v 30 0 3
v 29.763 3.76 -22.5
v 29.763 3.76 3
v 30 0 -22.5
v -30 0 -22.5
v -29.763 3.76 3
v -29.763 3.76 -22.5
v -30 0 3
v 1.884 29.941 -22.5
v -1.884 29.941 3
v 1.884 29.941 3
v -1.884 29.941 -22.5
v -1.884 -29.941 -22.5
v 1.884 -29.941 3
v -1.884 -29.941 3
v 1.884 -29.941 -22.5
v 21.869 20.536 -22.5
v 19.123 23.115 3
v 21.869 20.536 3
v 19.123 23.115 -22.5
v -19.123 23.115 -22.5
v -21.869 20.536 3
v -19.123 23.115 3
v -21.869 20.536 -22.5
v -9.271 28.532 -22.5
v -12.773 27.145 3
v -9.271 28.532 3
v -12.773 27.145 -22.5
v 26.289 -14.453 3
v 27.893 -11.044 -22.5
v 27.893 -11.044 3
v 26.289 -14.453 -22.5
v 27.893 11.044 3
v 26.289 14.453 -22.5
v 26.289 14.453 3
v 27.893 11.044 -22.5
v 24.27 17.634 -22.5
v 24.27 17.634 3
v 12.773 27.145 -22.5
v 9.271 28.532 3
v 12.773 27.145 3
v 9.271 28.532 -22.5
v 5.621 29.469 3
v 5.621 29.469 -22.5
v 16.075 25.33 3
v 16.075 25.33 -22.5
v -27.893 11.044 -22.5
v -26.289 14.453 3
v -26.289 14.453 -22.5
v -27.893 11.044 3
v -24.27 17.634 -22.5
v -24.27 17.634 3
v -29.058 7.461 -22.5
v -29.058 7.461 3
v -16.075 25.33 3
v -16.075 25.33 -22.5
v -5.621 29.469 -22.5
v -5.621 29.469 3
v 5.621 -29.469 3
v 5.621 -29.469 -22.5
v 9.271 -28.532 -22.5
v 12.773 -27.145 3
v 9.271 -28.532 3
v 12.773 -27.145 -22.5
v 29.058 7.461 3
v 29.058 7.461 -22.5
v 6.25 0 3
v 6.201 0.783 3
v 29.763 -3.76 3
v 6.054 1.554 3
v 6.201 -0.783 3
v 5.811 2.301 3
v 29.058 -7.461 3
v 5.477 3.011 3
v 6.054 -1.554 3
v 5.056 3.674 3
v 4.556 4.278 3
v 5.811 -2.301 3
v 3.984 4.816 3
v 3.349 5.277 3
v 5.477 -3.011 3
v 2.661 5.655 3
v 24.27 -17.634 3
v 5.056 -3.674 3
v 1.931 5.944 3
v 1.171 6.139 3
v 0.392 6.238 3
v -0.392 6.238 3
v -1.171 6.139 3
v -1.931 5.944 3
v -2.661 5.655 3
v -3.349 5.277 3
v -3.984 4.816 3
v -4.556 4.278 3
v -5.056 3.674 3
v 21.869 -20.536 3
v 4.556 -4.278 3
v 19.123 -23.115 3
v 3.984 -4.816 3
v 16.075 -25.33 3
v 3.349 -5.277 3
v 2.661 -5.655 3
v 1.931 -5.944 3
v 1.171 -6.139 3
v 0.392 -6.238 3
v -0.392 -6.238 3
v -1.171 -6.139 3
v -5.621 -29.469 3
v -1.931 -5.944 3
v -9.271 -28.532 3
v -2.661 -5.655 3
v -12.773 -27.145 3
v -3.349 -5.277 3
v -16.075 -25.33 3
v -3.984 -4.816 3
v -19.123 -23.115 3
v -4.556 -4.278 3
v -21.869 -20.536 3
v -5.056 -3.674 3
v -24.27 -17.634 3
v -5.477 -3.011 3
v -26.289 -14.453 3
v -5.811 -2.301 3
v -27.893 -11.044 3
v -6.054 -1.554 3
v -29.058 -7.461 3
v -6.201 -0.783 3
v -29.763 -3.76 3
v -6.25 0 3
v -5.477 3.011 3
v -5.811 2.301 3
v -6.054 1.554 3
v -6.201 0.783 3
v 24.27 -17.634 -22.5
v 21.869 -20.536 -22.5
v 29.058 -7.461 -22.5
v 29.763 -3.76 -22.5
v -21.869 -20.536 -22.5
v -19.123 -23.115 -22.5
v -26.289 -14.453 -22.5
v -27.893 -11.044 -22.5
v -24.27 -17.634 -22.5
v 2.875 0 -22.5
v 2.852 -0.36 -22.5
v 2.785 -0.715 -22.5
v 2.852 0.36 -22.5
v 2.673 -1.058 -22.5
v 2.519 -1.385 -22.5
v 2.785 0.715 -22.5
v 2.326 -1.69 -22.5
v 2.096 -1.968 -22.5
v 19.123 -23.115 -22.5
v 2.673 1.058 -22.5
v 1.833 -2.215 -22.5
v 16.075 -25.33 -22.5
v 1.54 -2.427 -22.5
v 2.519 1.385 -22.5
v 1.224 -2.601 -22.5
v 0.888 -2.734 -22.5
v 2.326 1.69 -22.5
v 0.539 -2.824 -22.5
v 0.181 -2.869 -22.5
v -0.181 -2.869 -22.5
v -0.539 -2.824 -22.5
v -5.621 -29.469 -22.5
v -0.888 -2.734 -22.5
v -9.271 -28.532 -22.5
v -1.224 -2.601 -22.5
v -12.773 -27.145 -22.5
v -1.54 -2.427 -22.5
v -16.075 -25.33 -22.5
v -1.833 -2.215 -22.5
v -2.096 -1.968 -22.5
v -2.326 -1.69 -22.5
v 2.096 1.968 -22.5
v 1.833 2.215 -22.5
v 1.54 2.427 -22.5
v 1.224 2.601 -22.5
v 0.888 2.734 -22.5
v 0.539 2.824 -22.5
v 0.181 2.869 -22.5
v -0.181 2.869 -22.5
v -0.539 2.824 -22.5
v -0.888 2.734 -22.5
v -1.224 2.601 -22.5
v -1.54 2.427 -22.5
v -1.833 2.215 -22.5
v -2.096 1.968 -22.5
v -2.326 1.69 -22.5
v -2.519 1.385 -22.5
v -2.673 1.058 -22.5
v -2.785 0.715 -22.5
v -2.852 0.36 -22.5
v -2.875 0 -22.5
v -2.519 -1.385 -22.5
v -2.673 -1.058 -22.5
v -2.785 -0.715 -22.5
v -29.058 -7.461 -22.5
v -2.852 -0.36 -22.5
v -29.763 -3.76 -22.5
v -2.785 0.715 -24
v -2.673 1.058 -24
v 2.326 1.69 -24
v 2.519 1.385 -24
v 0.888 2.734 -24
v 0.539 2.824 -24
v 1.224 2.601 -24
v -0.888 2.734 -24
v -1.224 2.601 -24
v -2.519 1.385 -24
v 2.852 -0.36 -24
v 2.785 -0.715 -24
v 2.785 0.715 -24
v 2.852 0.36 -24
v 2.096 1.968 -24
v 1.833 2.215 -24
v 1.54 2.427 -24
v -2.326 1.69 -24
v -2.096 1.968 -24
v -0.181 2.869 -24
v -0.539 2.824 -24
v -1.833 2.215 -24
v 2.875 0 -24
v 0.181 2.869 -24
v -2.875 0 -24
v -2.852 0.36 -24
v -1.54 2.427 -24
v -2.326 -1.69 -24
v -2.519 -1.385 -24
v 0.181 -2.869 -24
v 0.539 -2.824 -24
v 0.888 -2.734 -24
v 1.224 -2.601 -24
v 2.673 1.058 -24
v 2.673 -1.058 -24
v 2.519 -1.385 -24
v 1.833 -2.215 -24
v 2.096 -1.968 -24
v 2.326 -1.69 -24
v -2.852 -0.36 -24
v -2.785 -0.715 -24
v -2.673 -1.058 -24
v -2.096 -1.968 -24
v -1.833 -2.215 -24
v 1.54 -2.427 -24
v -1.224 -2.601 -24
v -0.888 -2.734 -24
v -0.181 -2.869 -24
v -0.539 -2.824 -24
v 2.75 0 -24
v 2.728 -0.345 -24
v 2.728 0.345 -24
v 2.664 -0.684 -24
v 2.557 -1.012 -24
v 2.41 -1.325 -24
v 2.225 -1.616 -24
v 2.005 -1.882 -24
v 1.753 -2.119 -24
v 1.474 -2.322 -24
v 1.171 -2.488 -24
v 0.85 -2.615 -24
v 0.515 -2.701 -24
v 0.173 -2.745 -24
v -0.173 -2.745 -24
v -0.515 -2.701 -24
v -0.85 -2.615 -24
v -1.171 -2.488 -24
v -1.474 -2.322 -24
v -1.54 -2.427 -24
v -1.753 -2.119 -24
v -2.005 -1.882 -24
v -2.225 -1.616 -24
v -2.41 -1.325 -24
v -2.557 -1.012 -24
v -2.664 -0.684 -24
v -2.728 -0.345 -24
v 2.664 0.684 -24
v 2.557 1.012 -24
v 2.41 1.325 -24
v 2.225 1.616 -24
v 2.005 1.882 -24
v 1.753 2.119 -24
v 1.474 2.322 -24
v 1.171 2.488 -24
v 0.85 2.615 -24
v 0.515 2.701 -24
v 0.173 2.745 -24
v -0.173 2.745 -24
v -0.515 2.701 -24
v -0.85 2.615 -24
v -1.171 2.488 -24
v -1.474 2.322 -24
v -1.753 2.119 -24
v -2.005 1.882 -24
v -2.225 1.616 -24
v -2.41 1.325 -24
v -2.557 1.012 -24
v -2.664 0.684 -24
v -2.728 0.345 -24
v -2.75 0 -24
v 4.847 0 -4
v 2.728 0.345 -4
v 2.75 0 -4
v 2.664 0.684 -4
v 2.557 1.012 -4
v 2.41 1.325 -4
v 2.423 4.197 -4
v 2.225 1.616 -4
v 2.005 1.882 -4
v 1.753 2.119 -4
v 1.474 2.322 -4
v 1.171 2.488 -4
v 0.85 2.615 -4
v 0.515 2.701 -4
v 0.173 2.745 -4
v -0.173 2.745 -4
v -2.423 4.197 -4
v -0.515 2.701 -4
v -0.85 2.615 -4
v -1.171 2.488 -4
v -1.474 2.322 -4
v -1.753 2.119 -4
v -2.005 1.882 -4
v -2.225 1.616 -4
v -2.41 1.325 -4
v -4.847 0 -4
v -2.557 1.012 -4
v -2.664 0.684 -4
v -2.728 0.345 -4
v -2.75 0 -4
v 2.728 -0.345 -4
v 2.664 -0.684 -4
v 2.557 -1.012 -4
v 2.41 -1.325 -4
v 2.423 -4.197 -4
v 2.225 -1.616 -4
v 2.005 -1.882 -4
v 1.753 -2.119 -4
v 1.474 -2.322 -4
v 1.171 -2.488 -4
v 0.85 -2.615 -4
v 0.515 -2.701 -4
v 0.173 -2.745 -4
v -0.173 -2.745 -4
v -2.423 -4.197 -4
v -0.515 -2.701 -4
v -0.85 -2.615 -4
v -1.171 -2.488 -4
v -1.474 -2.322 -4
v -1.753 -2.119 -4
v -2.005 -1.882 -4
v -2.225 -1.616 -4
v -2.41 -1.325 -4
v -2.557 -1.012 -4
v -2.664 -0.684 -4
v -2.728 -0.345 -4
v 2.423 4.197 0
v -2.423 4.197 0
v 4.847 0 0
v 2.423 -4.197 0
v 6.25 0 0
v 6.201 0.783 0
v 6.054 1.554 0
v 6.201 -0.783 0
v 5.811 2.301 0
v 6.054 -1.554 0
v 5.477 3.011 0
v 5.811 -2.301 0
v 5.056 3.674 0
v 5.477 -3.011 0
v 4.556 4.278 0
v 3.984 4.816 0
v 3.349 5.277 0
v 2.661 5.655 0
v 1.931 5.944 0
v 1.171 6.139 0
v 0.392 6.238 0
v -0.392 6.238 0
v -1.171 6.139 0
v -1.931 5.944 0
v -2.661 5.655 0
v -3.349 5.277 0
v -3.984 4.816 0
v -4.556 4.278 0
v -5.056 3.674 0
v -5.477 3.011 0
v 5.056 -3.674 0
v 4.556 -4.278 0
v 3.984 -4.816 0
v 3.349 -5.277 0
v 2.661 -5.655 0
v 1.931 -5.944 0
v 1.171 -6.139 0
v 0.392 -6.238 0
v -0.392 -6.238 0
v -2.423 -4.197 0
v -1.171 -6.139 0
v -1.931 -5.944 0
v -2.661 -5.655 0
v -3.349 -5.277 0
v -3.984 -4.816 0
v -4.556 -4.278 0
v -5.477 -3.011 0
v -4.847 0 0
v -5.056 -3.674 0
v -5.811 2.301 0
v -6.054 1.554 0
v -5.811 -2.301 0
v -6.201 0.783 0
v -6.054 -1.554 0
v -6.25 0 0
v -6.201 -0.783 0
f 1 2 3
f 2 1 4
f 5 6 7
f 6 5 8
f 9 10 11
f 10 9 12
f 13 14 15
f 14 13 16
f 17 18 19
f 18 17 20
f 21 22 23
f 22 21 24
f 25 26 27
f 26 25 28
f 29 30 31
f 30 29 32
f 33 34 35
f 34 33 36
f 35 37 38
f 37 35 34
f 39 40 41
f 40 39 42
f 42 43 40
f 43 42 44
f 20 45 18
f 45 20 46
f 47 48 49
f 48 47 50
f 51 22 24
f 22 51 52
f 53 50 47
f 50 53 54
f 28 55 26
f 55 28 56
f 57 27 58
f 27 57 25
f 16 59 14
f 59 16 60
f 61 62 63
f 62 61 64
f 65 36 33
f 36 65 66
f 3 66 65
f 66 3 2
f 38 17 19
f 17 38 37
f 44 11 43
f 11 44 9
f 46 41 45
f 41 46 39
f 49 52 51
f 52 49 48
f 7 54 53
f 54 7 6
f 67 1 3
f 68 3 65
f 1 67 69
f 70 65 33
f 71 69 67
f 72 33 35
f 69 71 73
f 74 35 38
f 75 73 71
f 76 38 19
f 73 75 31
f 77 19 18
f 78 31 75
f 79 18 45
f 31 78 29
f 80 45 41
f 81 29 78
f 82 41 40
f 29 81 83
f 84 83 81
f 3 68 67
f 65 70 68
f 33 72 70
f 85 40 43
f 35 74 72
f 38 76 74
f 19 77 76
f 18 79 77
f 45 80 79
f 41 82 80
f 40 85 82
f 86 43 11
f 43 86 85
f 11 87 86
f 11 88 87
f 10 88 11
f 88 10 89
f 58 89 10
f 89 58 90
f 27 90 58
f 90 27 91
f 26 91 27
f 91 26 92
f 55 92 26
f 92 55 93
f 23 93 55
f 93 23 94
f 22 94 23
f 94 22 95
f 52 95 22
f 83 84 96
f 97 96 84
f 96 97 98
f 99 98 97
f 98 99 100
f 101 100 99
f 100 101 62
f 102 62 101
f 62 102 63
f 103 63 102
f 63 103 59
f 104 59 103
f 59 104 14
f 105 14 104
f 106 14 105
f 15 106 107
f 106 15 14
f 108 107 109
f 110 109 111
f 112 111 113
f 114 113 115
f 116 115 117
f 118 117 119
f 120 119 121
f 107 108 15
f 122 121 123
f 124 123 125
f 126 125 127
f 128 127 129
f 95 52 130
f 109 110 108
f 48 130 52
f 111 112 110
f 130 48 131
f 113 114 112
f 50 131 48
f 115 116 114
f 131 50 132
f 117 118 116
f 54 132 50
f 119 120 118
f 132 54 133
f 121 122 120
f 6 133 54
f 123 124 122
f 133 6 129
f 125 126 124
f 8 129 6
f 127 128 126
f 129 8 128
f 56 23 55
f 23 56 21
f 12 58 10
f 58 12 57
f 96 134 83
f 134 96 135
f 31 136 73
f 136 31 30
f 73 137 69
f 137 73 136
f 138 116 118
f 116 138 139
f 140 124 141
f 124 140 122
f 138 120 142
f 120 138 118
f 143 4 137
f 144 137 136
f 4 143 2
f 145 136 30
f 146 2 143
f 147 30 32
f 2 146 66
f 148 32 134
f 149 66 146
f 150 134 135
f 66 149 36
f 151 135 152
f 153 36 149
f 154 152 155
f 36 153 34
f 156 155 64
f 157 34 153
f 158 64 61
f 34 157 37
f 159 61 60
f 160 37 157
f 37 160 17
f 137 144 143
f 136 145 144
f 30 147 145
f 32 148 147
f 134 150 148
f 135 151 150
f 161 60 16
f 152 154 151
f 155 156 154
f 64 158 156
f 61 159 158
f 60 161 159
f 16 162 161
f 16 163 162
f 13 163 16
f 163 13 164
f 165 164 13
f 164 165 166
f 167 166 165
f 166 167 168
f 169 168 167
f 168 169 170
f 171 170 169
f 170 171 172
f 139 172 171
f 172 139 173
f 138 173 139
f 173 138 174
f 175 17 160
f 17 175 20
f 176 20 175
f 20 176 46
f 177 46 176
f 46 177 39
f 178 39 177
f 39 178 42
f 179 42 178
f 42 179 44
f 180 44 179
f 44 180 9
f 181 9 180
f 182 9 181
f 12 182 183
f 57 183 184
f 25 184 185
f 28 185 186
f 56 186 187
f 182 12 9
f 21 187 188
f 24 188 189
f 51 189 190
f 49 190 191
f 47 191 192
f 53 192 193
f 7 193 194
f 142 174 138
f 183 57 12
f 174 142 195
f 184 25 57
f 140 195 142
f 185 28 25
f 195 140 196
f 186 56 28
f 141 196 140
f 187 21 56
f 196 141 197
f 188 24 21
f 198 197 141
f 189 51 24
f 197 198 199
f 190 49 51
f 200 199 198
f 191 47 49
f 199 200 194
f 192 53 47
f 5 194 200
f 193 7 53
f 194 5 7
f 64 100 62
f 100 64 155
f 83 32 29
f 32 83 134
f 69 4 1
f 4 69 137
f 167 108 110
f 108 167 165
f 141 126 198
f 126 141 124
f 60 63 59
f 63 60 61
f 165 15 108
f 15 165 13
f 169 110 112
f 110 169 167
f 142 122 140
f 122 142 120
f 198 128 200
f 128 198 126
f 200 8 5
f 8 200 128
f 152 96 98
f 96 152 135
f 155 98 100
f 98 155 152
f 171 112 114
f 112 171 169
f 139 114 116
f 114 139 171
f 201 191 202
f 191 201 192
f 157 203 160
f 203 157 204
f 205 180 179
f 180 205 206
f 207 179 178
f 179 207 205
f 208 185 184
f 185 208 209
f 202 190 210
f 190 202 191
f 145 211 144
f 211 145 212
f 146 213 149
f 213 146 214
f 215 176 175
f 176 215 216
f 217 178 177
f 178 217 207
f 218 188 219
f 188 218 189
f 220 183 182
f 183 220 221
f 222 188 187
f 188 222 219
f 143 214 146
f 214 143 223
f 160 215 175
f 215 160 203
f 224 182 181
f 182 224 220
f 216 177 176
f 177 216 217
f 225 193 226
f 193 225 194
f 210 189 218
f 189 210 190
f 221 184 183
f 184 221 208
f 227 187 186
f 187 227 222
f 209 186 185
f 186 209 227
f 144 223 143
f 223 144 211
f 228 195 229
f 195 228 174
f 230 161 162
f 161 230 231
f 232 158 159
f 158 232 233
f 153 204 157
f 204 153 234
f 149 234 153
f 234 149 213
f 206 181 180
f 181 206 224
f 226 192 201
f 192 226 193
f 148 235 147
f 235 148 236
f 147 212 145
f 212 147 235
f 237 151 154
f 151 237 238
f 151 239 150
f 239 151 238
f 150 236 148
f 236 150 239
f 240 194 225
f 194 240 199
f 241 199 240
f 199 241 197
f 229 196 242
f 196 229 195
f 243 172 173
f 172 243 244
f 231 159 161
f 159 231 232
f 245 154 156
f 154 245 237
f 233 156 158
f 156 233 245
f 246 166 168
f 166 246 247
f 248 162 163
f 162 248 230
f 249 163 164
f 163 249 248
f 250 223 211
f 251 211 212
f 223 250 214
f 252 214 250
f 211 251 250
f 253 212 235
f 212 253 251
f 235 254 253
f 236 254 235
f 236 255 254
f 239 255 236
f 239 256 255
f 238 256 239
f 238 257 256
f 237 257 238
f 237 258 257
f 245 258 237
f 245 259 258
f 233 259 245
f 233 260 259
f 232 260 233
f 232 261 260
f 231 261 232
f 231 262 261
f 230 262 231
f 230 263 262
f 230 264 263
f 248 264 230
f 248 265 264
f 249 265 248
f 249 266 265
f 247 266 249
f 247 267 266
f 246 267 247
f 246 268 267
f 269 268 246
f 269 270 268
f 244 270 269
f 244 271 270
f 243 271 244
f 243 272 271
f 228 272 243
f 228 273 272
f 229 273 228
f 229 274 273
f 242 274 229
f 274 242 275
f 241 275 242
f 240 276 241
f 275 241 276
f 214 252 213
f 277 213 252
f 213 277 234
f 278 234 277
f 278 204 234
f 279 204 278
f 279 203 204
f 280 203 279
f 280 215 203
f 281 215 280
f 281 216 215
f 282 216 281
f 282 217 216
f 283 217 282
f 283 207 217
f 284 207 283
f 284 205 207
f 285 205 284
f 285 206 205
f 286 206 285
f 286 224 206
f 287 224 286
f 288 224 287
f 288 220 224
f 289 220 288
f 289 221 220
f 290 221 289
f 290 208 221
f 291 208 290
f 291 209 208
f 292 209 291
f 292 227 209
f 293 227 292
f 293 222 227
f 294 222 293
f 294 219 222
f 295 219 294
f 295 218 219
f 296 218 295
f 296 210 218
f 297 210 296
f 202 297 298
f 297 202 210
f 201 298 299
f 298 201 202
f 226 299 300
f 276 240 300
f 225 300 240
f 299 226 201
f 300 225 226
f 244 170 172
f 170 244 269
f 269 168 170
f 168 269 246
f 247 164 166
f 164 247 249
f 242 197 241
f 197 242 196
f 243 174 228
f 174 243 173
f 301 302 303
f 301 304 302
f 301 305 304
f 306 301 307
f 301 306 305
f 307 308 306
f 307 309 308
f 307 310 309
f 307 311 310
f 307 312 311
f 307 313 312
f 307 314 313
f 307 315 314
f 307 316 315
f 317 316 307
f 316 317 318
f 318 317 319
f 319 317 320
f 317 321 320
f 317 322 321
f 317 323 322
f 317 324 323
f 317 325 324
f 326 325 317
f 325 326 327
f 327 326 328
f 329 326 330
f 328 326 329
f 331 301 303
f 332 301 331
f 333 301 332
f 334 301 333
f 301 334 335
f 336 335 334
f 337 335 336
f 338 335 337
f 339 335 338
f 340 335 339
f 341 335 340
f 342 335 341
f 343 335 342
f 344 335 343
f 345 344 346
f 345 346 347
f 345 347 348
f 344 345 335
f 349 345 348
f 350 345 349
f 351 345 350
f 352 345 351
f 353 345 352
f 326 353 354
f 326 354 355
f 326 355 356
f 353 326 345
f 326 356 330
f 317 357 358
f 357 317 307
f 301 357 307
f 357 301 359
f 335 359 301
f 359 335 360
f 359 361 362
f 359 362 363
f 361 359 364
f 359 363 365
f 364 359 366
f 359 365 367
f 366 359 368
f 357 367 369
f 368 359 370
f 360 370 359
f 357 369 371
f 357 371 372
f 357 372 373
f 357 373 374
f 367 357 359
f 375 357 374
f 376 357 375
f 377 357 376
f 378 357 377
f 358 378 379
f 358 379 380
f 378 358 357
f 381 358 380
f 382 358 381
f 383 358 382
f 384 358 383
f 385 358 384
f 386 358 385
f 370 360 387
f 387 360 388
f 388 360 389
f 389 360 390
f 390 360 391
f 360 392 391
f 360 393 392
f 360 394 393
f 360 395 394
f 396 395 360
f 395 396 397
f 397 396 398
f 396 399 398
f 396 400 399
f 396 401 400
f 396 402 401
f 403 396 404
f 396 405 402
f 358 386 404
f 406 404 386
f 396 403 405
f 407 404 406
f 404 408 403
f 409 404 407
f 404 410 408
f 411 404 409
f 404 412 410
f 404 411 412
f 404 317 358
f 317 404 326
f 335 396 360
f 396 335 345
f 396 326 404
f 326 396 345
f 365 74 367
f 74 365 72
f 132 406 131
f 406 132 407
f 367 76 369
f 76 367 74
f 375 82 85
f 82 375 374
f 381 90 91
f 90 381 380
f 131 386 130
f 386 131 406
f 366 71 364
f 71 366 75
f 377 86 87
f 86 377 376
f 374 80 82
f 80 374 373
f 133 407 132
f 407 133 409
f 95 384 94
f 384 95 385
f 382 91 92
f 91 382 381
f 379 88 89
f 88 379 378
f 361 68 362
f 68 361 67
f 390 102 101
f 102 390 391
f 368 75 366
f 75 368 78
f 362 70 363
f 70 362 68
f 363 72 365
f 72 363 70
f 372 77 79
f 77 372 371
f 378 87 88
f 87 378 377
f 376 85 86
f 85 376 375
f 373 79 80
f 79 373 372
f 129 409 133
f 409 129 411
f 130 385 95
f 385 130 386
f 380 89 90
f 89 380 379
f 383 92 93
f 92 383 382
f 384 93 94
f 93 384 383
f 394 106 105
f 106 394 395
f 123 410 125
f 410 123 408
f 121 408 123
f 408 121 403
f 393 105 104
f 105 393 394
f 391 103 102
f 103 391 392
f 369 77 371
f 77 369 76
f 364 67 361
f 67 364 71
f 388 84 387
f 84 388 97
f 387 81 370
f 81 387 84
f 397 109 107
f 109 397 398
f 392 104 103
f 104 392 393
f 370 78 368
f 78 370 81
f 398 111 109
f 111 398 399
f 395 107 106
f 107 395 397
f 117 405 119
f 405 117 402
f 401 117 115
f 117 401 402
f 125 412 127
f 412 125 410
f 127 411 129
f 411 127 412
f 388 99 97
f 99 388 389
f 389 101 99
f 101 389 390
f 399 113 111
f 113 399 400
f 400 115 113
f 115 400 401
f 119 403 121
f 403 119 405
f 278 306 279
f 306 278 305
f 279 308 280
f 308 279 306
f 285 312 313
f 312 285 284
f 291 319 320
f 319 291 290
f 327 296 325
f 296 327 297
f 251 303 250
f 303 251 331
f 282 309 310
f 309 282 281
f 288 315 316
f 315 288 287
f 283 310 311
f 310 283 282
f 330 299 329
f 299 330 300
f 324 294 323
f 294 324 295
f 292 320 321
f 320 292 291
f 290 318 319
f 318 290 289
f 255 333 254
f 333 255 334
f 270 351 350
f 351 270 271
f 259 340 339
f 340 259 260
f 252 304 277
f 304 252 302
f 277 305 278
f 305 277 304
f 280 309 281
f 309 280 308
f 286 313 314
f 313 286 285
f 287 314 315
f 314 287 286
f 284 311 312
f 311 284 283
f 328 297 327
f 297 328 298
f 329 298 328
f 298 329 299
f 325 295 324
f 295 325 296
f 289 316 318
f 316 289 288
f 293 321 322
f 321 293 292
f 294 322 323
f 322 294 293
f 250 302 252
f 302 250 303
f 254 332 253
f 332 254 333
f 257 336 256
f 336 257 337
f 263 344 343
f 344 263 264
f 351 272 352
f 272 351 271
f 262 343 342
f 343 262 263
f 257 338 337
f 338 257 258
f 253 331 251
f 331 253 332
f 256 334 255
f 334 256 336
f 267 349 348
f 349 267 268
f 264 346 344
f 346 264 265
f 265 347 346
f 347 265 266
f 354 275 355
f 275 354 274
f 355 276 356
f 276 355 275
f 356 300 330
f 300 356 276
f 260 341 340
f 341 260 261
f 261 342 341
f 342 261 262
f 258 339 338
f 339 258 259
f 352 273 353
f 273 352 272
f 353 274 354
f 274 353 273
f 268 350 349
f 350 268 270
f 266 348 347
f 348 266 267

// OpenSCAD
$fn = 50;

difference() {
	union() {
		translate(v = [0, 0, -22.5]) {
			cylinder(h = 25.5, r = 30.0);
		}
		#translate(v = [0, 0, -24.0]) {
			cylinder(h = 24, r = 2.875);
		}
	}
	union() {
		translate(v = [0, 0, 0]) {
			rotate(a = [0, 0, 0]) {
				difference() {
					union() {
						translate(v = [0, 0, -4]) {
							linear_extrude(height = 4) {
								polygon(points = [[4.8468, 0.0], [2.4234000000000004, 4.197451927062417], [-2.423399999999999, 4.197451927062417], [-4.8468, 5.935618106107392e-16], [-2.423400000000002, -4.197451927062416], [2.423399999999997, -4.197451927062419]]);
							}
						}
					}
					union();
				}
			}
		}
		#cylinder(h = 3, r = 6.25);
		#translate(v = [0, 0, -100.0]) {
			cylinder(h = 200, r = 2.75);
		}
	}
}
